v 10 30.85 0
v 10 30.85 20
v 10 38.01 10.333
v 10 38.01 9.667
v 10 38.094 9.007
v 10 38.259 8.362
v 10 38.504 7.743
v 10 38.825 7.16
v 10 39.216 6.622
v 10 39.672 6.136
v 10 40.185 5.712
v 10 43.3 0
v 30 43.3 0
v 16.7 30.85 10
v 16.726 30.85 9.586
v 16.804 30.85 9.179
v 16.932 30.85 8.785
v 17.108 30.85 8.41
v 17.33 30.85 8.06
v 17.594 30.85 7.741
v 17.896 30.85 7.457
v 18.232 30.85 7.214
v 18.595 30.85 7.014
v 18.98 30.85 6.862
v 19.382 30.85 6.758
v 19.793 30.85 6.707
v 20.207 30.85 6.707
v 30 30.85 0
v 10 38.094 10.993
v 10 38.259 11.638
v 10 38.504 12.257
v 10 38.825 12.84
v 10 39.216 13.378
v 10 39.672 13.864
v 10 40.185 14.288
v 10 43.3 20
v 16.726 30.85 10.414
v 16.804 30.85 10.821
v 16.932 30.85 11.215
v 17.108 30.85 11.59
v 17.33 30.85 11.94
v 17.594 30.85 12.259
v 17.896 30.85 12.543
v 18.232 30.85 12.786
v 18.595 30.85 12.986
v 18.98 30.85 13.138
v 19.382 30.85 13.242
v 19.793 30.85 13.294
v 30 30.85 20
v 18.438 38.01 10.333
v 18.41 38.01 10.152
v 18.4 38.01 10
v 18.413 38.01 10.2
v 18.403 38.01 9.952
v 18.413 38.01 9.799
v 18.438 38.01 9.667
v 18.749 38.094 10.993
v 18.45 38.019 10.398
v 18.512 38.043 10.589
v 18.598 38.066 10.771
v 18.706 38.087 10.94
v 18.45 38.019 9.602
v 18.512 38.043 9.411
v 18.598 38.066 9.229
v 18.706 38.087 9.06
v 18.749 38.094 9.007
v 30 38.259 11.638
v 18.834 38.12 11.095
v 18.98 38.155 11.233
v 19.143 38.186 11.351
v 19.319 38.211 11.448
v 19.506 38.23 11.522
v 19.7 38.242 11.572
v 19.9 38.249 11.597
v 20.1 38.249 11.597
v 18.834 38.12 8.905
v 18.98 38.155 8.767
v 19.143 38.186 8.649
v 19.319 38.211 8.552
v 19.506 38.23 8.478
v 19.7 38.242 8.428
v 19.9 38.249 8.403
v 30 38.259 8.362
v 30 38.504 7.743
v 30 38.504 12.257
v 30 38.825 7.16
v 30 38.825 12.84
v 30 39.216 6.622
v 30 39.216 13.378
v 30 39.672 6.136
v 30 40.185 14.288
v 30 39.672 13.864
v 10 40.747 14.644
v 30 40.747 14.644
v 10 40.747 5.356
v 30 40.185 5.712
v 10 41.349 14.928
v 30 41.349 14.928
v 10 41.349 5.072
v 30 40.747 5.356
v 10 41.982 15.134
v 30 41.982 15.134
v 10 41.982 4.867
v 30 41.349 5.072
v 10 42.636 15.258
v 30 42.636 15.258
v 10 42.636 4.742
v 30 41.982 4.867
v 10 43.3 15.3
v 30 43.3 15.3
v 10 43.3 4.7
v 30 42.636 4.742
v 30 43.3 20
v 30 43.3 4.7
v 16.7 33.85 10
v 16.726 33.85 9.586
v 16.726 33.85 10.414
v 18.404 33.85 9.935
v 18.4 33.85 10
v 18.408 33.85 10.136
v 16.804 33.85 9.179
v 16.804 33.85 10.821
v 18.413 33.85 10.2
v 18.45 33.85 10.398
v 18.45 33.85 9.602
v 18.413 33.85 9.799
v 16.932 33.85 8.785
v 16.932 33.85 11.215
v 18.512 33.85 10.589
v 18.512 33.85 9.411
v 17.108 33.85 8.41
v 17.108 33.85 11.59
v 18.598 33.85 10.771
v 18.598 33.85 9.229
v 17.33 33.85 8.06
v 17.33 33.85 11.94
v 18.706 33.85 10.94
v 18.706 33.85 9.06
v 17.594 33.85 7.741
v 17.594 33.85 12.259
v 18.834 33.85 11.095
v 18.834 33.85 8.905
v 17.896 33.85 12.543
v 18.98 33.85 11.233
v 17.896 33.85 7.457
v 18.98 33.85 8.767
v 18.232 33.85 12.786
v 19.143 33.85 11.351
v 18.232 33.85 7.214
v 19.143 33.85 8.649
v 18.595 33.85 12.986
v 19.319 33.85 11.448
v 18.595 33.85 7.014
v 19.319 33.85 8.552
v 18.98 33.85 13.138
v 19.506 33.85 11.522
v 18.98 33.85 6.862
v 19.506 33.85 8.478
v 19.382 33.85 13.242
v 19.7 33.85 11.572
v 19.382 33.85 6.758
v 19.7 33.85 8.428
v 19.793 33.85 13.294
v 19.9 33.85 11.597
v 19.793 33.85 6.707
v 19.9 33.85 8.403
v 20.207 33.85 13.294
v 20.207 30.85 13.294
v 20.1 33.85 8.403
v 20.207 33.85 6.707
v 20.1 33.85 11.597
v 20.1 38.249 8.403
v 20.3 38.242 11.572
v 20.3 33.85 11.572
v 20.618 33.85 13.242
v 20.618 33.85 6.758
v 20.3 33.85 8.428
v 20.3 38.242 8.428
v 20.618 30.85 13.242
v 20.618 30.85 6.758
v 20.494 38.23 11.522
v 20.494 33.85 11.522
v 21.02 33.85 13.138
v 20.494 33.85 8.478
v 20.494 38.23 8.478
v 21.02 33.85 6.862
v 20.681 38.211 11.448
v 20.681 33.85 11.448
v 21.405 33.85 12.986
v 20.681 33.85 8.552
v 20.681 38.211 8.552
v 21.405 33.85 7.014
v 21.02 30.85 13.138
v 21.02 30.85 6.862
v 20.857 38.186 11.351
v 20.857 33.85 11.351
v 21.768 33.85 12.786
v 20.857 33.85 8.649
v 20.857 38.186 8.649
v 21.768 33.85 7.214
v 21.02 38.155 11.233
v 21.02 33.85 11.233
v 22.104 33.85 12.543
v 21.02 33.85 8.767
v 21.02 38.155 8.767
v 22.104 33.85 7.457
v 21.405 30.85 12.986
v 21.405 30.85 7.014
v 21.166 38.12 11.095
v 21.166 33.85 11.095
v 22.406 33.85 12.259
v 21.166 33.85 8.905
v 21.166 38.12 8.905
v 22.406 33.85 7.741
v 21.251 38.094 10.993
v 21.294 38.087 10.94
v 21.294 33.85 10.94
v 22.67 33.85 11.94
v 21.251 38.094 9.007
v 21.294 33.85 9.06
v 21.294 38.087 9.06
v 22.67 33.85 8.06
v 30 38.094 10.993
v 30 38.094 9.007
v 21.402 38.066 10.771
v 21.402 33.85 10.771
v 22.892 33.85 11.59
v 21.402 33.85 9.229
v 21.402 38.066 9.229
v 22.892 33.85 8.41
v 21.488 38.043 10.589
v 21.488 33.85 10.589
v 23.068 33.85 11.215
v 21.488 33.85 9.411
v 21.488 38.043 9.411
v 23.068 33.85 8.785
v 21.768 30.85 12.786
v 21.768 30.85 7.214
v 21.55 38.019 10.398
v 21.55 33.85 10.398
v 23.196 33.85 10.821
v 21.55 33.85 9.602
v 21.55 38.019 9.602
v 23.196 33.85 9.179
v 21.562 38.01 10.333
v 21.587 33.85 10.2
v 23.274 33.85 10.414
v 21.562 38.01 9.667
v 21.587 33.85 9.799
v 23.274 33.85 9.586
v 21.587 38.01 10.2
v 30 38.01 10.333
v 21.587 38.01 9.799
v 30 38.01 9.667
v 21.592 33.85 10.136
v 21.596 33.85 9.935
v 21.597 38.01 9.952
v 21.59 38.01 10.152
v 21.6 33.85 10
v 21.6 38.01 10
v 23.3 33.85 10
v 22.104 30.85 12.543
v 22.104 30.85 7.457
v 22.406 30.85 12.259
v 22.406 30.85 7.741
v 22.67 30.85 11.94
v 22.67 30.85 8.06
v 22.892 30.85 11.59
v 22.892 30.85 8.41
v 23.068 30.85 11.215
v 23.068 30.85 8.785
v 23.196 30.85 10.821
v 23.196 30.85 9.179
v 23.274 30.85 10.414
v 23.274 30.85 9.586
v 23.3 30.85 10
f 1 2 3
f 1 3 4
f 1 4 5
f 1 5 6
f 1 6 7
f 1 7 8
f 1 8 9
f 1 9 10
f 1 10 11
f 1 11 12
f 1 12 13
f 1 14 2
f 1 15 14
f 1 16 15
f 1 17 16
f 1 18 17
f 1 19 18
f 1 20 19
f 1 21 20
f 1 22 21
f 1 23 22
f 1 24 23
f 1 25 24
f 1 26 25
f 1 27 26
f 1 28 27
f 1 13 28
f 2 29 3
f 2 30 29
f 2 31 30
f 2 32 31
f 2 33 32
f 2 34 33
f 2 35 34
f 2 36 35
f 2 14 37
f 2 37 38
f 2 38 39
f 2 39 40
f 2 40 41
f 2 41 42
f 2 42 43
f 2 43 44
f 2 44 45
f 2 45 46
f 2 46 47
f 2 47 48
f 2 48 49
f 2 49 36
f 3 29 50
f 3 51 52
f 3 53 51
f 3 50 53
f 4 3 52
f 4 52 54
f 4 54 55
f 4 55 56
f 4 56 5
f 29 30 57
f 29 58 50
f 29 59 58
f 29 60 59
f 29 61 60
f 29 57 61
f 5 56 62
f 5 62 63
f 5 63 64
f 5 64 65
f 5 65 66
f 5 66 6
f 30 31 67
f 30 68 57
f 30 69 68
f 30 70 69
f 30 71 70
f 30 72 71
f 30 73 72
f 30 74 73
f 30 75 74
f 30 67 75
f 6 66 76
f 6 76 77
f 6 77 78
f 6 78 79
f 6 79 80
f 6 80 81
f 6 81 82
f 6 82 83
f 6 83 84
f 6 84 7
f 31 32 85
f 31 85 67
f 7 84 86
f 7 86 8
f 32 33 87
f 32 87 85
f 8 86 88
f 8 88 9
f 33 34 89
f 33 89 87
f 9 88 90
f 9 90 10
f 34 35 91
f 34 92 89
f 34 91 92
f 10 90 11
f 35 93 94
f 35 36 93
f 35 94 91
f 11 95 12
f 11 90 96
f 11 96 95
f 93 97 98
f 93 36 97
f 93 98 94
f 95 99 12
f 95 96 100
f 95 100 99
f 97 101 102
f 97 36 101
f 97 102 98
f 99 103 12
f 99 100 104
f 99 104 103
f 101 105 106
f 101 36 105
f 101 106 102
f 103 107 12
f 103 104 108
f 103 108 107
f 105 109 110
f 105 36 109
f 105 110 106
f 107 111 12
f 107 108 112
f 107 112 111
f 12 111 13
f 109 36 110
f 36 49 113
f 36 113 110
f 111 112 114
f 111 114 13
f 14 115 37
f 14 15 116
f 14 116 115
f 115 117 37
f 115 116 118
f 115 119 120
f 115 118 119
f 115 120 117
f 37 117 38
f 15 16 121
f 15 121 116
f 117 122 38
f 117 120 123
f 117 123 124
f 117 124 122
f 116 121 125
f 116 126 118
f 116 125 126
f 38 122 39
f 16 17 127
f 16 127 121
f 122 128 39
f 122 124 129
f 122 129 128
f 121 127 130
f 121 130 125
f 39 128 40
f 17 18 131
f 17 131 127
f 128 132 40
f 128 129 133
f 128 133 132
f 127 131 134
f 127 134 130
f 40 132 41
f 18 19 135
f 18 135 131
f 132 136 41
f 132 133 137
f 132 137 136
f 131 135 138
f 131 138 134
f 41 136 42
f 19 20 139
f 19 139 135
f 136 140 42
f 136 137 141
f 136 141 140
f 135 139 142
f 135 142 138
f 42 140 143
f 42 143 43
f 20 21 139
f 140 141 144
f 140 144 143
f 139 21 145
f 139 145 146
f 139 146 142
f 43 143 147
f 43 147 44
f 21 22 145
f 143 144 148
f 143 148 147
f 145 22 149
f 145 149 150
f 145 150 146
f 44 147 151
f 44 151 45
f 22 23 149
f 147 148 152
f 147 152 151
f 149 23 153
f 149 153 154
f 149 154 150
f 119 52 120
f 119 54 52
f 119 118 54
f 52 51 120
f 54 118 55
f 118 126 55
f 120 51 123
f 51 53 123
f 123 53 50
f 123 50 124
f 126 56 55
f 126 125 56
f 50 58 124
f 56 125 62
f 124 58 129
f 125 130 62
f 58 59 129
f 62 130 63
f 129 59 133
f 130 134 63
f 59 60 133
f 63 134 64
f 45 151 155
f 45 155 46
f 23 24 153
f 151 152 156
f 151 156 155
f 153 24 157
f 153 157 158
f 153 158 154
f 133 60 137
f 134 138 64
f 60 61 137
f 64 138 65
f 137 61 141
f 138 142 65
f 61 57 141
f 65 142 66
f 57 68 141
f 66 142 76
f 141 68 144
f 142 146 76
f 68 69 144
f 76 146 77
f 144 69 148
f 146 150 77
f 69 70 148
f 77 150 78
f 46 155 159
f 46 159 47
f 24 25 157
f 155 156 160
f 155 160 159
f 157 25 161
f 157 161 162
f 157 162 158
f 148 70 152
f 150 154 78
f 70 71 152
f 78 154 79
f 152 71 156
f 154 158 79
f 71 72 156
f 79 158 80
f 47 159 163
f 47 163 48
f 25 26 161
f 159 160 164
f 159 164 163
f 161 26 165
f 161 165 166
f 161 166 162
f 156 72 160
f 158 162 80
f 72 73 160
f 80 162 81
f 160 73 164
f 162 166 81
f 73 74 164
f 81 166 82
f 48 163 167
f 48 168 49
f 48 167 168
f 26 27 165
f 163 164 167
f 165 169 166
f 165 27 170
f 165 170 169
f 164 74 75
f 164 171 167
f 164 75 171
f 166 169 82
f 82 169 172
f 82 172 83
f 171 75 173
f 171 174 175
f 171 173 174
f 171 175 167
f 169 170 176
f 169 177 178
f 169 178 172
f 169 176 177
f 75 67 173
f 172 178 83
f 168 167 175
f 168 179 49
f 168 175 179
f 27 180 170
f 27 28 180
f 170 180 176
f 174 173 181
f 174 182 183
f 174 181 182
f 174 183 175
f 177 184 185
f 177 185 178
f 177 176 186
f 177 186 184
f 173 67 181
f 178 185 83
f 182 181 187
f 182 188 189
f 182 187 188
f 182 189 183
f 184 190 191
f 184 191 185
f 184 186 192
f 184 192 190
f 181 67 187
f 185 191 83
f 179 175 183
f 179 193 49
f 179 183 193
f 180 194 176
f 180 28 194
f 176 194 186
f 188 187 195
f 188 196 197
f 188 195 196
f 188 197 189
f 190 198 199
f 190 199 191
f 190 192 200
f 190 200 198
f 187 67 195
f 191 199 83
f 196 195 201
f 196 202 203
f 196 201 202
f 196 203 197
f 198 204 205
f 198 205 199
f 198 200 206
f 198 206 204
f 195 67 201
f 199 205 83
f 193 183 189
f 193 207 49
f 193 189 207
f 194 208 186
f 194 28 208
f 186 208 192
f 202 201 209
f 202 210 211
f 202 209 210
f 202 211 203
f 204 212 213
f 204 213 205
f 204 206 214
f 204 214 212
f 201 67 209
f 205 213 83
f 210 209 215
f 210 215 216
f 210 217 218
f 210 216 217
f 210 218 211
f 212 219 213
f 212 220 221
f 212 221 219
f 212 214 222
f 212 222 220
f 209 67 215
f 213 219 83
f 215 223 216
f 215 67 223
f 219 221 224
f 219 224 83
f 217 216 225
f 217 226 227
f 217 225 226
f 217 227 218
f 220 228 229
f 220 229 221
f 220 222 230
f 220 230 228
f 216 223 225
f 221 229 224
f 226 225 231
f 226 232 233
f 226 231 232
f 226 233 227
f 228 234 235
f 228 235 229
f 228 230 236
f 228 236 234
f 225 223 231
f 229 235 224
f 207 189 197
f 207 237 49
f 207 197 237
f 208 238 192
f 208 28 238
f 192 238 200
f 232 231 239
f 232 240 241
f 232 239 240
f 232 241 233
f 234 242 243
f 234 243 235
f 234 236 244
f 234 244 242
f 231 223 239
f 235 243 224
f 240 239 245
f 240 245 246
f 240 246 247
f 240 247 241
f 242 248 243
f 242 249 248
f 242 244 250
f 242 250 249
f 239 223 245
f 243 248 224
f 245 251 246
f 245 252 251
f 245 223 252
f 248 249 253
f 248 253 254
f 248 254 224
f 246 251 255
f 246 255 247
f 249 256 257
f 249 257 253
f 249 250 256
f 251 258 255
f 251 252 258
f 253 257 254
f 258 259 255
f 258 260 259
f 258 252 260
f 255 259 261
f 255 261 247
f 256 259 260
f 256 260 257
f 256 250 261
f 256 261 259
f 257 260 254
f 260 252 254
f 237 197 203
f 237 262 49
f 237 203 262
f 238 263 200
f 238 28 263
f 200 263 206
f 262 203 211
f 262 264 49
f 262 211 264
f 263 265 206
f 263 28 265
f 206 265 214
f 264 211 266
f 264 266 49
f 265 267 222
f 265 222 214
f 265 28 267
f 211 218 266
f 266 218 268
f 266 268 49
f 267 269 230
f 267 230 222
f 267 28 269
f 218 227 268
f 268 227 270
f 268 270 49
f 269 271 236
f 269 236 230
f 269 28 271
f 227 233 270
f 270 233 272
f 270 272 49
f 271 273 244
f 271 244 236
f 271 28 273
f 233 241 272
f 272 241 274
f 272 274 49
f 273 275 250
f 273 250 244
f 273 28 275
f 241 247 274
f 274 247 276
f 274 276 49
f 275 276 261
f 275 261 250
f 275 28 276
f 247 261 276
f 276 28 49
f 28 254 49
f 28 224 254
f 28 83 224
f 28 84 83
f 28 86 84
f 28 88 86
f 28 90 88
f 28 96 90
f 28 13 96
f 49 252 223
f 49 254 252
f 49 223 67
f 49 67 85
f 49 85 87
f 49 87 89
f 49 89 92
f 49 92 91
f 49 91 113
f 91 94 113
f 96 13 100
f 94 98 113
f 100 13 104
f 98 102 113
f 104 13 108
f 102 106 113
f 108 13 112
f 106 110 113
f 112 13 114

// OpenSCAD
include <../parameters.scad>

fork_wheel_width = 50 ;
fork_thickness = 20;
fork_width = 10 ;
fork_hole_diameter = 10 ;
length = 120;

pipe_diameter = tube_for_undercarriage_outer_diameter;
pipe_holder_length = 20;
pipe_holder_thickness = pipe_diameter/2+3;

pipe_holder1_pos = 10;
pipe_holder2_pos = 50;
pipe_holder_space =3;

M3_screw_head_diameter = M3_nut_diameter;

module 888_1028() {
    difference() {
        union () {
            translate([pipe_holder1_pos,fork_wheel_width/2+fork_width, 0])
                cube ([pipe_holder_length, pipe_holder_thickness, fork_thickness]);

            translate([pipe_holder1_pos,fork_wheel_width/2+fork_width-pipe_holder_thickness/2, 0])
                cube ([pipe_holder_length, pipe_holder_thickness/2, fork_thickness]);
        }

        rotate ([0,90,0])
            translate([-fork_thickness/2, fork_wheel_width/2+fork_width+pipe_diameter/2+pipe_holder_space, 0])
                cylinder(h=length, d=pipe_diameter, $fn=50);
        rotate ([90,0,0,])
            translate([pipe_holder1_pos+pipe_holder_length/2, fork_thickness/2, -fork_wheel_width])
                cylinder (h=fork_wheel_width, d=M3_screw_diameter, $fn=50);
        rotate ([90,0,0,])
            translate([pipe_holder1_pos+pipe_holder_length/2,fork_thickness/2,-(fork_wheel_width/2+fork_width+M3_screw_head_height-pipe_holder_thickness/2)])
                cylinder (h=fork_width, d=M3_screw_head_diameter, $fn=50);

    }
}


888_1028();
